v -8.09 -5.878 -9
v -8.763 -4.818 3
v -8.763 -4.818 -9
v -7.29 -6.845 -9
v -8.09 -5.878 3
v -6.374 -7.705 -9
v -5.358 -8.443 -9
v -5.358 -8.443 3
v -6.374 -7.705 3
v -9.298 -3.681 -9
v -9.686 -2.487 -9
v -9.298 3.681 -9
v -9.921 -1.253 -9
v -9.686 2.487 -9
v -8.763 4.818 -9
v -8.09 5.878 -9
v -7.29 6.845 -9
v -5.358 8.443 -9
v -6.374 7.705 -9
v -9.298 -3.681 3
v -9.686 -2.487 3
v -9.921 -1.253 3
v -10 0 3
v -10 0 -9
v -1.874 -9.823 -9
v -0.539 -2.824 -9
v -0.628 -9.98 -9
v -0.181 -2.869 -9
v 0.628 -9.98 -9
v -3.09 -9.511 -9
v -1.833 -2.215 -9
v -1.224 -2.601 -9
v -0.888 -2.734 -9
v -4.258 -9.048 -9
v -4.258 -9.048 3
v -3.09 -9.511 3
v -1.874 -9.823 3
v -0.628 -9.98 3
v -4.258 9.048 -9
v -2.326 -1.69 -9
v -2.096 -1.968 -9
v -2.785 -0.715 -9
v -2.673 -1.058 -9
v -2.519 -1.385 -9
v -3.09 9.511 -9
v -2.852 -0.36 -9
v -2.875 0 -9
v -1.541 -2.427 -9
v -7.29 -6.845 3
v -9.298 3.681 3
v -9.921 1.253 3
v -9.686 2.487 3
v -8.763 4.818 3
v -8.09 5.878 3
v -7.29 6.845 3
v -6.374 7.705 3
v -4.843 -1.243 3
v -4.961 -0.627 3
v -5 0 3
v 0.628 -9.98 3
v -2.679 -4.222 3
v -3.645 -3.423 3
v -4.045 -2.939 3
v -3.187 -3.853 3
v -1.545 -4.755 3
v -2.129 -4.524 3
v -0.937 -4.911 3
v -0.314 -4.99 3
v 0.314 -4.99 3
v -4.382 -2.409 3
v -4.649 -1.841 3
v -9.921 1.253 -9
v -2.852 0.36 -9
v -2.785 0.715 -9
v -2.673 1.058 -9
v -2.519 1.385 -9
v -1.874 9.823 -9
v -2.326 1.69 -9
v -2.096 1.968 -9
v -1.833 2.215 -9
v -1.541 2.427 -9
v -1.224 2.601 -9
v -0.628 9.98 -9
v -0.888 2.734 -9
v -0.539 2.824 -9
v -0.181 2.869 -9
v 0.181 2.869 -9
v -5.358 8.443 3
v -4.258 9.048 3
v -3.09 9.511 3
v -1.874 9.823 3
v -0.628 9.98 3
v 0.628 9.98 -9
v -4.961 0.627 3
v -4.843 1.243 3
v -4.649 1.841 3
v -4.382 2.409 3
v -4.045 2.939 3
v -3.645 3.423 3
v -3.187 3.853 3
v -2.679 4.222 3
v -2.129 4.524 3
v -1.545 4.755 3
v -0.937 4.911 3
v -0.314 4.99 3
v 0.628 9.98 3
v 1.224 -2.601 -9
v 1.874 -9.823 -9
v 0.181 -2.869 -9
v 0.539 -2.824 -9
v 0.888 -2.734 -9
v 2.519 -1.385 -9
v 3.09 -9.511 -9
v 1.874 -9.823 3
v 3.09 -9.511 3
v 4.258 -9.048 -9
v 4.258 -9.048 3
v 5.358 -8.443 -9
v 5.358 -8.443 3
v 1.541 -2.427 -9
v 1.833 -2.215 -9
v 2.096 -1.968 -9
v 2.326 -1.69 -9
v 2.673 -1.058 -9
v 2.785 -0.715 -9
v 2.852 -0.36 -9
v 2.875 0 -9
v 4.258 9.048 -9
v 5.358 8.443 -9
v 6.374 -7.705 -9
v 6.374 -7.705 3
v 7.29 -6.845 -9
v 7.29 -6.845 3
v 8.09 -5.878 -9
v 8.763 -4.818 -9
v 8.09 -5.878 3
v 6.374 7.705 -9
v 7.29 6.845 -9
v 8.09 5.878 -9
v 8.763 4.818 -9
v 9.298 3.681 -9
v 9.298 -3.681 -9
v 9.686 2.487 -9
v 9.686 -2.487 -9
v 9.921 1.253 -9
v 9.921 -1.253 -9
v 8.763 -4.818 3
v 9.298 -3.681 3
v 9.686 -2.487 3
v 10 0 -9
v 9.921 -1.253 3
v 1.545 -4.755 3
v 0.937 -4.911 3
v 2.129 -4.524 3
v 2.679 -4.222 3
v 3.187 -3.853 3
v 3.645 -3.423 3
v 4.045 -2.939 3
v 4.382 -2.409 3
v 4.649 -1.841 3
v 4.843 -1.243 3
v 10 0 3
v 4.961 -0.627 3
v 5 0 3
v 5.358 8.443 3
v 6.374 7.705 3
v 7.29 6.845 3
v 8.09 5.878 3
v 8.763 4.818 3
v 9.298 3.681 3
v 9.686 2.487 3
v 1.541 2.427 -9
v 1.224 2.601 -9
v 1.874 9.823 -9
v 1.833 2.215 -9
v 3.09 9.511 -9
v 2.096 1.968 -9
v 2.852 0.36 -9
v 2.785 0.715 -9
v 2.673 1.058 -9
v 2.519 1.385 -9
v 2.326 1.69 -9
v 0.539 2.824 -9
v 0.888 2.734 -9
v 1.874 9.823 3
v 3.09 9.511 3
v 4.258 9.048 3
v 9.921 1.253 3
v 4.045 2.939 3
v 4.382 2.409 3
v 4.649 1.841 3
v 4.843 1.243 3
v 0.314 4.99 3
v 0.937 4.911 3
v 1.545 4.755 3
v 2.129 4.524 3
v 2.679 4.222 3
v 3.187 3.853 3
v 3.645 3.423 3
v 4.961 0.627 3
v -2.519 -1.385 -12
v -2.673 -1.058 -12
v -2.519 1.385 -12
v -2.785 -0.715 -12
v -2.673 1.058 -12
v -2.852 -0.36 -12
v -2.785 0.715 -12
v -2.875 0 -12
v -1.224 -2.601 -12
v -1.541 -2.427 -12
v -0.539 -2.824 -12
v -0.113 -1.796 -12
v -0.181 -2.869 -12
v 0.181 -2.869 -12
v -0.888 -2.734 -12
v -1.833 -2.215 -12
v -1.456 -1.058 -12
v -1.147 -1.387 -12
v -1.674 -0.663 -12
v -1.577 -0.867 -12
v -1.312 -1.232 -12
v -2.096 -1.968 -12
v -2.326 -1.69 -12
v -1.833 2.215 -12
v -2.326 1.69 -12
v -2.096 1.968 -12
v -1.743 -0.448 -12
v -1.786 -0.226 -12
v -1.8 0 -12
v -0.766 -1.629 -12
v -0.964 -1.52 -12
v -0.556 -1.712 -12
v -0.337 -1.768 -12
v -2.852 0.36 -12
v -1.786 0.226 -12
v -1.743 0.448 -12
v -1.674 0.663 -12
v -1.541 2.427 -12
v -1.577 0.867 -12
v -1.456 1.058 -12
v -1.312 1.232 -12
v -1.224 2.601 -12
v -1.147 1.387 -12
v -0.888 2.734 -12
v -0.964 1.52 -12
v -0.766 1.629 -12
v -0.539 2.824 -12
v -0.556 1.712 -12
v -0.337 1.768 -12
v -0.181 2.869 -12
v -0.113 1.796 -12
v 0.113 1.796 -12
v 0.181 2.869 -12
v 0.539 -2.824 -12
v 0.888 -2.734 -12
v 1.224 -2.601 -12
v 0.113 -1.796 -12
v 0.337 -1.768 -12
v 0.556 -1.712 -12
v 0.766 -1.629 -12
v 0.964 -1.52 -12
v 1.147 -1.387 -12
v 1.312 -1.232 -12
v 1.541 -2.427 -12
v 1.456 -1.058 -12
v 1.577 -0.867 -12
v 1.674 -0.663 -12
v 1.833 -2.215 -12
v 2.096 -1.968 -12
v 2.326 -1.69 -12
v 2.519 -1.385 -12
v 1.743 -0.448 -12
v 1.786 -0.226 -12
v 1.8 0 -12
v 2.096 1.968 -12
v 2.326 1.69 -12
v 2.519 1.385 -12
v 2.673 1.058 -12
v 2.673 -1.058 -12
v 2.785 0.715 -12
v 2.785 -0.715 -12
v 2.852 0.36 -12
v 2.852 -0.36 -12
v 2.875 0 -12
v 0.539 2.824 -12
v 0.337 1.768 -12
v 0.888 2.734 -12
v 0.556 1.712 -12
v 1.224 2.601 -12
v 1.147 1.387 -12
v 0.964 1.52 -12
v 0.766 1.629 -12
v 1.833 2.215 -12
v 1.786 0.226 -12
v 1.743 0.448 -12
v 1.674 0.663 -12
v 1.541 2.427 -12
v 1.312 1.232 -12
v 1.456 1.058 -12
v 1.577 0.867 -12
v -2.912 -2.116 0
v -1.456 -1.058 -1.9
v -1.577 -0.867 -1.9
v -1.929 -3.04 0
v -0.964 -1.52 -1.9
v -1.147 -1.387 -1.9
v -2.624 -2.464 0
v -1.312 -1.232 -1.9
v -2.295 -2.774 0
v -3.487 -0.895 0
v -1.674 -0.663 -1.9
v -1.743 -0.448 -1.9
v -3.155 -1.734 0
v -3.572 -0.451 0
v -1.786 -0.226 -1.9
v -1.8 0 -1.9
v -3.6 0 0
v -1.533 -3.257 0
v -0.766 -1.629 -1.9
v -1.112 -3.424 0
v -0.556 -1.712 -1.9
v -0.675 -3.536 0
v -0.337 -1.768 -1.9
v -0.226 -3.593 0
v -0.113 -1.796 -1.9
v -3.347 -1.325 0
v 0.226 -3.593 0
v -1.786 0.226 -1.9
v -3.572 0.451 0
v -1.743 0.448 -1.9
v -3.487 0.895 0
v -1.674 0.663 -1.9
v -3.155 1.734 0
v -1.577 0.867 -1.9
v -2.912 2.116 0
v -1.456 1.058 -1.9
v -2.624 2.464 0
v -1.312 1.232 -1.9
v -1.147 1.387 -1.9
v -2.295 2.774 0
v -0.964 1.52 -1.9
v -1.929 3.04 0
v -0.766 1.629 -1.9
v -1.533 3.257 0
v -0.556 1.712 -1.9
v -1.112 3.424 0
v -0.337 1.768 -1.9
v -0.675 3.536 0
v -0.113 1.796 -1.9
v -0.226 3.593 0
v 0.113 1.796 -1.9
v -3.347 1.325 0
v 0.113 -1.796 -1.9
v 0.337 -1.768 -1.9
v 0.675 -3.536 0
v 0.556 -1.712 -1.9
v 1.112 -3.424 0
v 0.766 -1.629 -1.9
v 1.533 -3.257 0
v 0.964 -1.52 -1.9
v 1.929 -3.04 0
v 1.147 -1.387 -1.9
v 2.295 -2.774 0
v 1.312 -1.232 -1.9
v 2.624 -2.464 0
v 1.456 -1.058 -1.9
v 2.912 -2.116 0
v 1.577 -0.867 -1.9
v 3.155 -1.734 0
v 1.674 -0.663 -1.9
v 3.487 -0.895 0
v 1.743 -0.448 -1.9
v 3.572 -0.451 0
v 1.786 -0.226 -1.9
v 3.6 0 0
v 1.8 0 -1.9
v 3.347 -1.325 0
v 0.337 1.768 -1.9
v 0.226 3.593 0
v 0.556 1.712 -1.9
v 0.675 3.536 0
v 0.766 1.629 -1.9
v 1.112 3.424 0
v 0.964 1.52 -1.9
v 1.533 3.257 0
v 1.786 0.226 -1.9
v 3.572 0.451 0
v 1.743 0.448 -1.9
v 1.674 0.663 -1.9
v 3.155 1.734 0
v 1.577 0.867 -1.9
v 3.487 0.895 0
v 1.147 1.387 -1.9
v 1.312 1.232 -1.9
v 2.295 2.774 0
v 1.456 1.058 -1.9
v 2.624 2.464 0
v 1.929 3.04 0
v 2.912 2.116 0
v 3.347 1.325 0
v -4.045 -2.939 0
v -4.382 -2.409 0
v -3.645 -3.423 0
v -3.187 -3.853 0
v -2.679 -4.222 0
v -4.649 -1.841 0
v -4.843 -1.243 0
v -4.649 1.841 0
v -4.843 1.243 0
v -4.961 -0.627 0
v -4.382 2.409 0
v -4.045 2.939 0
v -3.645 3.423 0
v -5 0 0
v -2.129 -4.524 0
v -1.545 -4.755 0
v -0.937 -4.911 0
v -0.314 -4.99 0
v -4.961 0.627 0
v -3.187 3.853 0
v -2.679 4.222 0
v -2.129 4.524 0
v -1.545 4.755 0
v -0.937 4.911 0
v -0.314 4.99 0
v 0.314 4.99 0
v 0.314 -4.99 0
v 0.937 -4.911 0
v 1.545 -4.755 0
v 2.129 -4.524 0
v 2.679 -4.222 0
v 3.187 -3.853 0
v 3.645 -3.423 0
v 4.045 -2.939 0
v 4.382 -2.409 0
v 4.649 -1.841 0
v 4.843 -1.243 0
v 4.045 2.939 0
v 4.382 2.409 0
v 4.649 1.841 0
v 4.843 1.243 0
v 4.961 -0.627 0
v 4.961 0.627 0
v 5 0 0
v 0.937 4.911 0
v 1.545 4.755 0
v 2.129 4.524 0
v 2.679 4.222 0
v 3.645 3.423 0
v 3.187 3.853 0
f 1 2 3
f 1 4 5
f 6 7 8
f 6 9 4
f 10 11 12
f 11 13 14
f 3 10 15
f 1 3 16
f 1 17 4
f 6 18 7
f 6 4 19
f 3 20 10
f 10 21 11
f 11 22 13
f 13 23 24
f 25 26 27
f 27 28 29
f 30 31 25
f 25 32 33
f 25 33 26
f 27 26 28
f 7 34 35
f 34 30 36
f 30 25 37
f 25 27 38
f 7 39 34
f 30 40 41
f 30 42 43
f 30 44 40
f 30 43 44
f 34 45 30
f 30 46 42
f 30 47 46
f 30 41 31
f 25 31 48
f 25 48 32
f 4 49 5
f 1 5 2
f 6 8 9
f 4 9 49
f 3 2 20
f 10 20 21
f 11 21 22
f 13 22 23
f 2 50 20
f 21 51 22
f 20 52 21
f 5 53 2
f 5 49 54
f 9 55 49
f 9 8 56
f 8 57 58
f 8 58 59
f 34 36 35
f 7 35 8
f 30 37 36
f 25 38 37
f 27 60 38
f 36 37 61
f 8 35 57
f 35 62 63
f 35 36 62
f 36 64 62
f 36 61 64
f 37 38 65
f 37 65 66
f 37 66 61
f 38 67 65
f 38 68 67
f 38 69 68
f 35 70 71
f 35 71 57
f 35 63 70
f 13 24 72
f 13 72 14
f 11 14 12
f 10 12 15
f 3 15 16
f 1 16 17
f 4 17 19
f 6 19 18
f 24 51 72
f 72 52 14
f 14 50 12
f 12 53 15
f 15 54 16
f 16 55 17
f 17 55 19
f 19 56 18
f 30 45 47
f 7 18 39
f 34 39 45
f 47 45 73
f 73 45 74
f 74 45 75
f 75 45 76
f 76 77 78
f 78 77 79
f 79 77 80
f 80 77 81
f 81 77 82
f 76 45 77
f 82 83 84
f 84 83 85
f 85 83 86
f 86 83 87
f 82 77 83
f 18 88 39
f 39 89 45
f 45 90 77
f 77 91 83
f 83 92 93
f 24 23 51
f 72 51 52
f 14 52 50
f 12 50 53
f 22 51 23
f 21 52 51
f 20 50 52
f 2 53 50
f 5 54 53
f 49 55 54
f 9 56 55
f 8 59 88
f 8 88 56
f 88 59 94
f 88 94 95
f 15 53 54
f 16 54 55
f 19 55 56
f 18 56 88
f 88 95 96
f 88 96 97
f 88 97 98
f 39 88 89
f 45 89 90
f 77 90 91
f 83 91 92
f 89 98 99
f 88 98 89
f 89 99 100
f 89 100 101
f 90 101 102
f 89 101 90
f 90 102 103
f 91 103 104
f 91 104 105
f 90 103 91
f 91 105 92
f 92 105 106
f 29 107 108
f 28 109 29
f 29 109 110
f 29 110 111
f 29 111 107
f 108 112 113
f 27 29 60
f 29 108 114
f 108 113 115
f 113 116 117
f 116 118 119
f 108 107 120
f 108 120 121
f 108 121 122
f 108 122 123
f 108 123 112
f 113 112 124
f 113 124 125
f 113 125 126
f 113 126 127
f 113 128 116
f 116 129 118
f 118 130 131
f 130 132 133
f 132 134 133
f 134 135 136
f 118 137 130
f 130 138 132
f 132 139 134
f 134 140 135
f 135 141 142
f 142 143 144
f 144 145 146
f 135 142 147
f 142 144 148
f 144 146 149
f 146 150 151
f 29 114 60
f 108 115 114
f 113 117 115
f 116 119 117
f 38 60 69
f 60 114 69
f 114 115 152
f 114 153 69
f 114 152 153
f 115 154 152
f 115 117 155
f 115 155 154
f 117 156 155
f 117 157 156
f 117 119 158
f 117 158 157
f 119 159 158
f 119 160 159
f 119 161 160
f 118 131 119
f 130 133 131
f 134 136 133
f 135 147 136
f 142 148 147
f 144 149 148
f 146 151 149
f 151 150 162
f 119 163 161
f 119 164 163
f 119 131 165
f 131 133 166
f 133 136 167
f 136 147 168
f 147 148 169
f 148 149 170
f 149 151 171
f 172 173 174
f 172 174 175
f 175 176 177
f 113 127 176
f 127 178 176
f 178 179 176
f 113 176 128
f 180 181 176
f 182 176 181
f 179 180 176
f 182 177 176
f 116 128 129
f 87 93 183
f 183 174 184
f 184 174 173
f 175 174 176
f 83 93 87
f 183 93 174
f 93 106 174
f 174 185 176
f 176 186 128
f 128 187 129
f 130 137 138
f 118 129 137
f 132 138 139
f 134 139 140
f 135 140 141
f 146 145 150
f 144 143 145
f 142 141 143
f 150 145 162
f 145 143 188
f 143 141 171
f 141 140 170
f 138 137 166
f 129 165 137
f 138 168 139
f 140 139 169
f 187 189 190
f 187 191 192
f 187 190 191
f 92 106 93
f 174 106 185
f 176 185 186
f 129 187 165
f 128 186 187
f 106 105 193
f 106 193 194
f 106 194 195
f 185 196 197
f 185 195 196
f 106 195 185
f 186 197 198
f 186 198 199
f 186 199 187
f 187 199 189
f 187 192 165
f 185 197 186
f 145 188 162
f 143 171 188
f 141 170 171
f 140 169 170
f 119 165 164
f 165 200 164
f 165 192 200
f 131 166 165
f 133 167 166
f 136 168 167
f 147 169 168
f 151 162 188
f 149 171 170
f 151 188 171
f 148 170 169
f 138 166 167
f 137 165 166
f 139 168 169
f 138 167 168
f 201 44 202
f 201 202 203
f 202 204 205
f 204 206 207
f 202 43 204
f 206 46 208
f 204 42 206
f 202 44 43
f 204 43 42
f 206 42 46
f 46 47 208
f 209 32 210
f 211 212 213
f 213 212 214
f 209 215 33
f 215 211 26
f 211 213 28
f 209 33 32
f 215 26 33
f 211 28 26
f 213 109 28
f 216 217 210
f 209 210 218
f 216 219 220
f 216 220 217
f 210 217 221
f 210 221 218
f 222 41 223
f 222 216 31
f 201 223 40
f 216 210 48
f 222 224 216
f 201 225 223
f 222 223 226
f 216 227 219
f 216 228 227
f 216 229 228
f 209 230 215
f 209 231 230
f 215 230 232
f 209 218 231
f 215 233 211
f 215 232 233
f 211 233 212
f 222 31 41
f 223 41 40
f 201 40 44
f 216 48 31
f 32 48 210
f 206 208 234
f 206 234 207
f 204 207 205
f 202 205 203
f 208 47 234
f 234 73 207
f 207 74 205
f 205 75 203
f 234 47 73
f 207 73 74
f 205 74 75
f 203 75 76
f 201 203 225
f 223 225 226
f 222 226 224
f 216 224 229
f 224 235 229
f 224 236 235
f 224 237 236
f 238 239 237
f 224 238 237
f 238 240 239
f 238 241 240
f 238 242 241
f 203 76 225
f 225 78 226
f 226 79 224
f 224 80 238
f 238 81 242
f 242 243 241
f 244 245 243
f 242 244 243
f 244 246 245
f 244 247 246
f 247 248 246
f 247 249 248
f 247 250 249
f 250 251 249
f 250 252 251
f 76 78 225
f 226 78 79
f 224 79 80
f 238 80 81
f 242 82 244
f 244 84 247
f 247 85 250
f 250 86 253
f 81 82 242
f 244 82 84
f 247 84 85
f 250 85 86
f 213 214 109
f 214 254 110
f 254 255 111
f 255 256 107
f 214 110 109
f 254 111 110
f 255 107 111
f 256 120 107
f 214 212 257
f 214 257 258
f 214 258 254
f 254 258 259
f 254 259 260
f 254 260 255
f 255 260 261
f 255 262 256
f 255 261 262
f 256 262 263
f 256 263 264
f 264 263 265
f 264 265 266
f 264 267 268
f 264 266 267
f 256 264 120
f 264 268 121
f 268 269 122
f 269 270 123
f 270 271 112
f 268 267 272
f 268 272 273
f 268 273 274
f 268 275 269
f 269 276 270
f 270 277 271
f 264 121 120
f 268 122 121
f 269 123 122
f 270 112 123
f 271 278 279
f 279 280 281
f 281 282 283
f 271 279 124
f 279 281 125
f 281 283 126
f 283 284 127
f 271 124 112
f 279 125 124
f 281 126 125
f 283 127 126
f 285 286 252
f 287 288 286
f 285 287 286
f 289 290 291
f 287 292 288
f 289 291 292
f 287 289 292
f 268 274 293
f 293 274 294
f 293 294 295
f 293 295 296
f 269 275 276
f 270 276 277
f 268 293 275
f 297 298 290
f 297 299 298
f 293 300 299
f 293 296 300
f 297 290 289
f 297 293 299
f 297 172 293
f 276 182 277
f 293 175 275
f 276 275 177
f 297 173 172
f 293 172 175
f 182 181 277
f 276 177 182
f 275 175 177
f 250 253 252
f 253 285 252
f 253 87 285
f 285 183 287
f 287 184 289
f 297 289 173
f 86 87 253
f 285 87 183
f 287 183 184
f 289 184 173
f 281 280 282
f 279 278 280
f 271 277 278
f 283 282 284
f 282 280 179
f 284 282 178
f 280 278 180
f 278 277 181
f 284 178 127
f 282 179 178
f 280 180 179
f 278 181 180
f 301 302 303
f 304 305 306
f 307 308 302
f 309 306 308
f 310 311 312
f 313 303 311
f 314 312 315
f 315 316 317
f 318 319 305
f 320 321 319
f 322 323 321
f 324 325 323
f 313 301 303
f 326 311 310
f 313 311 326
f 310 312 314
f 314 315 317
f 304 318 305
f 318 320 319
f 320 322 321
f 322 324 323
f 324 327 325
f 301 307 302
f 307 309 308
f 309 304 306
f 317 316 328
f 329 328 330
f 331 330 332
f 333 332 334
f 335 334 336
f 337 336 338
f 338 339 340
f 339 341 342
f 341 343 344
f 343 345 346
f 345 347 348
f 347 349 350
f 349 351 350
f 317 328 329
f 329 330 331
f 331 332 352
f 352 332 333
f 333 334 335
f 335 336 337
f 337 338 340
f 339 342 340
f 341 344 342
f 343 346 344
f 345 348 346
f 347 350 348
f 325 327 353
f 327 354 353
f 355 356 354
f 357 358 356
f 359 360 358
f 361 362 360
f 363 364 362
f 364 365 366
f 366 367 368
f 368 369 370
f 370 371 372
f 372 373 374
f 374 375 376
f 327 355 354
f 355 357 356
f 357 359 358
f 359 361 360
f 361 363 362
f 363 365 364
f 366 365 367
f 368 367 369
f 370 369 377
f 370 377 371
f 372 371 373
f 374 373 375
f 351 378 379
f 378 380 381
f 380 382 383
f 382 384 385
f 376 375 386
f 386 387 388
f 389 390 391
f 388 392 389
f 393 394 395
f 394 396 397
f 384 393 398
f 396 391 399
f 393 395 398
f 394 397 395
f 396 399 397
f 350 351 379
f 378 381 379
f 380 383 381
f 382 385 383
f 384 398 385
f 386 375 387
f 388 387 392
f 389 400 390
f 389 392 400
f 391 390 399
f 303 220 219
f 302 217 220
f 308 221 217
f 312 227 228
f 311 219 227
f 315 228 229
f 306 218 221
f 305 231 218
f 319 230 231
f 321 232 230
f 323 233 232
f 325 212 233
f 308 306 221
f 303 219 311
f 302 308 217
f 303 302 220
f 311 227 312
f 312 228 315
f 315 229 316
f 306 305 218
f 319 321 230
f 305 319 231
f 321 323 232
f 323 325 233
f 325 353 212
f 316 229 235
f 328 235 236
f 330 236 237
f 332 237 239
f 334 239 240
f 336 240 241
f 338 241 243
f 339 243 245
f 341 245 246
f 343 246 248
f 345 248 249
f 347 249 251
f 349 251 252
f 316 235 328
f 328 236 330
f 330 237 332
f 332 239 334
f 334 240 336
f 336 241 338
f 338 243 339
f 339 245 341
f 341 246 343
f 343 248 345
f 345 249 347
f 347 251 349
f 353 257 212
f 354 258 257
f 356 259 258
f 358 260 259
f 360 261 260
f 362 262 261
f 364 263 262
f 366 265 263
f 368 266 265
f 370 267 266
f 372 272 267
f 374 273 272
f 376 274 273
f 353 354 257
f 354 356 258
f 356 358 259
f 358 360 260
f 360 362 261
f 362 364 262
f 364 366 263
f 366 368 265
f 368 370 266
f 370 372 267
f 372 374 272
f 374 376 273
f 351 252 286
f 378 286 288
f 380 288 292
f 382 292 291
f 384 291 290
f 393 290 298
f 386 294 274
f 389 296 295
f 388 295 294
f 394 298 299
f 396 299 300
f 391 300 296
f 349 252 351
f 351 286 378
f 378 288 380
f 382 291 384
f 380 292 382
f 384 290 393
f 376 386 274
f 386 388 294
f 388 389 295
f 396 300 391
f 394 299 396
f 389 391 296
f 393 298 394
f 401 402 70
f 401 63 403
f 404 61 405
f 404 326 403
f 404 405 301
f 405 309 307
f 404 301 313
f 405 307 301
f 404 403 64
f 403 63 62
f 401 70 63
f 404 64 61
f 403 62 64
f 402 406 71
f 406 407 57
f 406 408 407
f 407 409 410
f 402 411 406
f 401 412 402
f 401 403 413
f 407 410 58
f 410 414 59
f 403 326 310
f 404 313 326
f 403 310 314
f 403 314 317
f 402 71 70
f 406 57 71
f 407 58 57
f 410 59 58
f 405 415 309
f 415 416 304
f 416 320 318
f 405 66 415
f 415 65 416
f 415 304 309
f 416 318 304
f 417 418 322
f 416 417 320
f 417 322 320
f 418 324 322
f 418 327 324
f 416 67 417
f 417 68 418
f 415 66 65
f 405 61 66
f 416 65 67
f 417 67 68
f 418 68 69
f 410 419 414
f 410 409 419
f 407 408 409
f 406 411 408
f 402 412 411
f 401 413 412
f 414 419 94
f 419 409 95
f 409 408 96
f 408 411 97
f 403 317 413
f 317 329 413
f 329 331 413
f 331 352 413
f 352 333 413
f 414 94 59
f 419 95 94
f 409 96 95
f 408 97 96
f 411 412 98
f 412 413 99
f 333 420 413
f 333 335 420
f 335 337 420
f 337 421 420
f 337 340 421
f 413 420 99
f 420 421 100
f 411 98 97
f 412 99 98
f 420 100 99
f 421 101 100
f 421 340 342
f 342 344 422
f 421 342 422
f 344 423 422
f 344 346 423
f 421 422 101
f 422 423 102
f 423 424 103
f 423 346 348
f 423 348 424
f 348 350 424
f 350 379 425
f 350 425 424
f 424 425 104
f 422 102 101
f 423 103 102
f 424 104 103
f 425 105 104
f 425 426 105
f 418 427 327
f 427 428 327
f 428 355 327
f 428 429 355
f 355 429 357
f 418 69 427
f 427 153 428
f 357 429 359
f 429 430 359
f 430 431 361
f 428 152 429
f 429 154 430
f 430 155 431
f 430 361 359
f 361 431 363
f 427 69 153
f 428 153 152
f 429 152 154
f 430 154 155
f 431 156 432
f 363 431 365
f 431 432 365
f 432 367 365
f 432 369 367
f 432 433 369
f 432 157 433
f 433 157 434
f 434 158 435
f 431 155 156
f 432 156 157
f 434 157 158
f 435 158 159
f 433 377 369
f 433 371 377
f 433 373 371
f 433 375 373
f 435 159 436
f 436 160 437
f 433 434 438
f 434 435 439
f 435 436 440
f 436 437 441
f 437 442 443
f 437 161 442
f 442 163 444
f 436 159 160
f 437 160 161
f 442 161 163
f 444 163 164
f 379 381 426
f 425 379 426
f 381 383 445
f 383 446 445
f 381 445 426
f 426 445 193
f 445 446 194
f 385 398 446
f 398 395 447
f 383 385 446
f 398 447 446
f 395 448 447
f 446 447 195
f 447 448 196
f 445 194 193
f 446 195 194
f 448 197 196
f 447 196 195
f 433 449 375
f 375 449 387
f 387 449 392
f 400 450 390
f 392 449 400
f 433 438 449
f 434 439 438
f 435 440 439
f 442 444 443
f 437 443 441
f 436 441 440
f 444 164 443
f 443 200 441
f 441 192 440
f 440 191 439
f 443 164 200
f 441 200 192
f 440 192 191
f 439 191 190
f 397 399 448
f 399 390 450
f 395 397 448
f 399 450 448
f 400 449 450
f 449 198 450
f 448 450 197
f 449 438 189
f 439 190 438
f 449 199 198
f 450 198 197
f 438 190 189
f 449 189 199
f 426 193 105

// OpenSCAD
$fn = 50;

difference() {
	union() {
		translate(v = [0, 0, -9.0]) {
			cylinder(h = 12, r = 10.0);
		}
		#translate(v = [0, 0, -12.0]) {
			cylinder(h = 12, r = 2.875);
		}
	}
	union() {
		translate(v = [0, 0, 0]) {
			rotate(a = [0, 0, 0]) {
				difference() {
					union() {
						translate(v = [0, 0, -12.0]) {
							cylinder(h = 12, r = 1.5);
						}
						translate(v = [0, 0, -1.9]) {
							cylinder(h = 1.9, r1 = 1.8, r2 = 3.6);
						}
						translate(v = [0, 0, -12.0]) {
							cylinder(h = 12, r = 1.8);
						}
						translate(v = [0, 0, -12.0]) {
							cylinder(h = 12, r = 1.5);
						}
					}
					union();
				}
			}
		}
		#cylinder(h = 3, r = 5.0);
	}
}
